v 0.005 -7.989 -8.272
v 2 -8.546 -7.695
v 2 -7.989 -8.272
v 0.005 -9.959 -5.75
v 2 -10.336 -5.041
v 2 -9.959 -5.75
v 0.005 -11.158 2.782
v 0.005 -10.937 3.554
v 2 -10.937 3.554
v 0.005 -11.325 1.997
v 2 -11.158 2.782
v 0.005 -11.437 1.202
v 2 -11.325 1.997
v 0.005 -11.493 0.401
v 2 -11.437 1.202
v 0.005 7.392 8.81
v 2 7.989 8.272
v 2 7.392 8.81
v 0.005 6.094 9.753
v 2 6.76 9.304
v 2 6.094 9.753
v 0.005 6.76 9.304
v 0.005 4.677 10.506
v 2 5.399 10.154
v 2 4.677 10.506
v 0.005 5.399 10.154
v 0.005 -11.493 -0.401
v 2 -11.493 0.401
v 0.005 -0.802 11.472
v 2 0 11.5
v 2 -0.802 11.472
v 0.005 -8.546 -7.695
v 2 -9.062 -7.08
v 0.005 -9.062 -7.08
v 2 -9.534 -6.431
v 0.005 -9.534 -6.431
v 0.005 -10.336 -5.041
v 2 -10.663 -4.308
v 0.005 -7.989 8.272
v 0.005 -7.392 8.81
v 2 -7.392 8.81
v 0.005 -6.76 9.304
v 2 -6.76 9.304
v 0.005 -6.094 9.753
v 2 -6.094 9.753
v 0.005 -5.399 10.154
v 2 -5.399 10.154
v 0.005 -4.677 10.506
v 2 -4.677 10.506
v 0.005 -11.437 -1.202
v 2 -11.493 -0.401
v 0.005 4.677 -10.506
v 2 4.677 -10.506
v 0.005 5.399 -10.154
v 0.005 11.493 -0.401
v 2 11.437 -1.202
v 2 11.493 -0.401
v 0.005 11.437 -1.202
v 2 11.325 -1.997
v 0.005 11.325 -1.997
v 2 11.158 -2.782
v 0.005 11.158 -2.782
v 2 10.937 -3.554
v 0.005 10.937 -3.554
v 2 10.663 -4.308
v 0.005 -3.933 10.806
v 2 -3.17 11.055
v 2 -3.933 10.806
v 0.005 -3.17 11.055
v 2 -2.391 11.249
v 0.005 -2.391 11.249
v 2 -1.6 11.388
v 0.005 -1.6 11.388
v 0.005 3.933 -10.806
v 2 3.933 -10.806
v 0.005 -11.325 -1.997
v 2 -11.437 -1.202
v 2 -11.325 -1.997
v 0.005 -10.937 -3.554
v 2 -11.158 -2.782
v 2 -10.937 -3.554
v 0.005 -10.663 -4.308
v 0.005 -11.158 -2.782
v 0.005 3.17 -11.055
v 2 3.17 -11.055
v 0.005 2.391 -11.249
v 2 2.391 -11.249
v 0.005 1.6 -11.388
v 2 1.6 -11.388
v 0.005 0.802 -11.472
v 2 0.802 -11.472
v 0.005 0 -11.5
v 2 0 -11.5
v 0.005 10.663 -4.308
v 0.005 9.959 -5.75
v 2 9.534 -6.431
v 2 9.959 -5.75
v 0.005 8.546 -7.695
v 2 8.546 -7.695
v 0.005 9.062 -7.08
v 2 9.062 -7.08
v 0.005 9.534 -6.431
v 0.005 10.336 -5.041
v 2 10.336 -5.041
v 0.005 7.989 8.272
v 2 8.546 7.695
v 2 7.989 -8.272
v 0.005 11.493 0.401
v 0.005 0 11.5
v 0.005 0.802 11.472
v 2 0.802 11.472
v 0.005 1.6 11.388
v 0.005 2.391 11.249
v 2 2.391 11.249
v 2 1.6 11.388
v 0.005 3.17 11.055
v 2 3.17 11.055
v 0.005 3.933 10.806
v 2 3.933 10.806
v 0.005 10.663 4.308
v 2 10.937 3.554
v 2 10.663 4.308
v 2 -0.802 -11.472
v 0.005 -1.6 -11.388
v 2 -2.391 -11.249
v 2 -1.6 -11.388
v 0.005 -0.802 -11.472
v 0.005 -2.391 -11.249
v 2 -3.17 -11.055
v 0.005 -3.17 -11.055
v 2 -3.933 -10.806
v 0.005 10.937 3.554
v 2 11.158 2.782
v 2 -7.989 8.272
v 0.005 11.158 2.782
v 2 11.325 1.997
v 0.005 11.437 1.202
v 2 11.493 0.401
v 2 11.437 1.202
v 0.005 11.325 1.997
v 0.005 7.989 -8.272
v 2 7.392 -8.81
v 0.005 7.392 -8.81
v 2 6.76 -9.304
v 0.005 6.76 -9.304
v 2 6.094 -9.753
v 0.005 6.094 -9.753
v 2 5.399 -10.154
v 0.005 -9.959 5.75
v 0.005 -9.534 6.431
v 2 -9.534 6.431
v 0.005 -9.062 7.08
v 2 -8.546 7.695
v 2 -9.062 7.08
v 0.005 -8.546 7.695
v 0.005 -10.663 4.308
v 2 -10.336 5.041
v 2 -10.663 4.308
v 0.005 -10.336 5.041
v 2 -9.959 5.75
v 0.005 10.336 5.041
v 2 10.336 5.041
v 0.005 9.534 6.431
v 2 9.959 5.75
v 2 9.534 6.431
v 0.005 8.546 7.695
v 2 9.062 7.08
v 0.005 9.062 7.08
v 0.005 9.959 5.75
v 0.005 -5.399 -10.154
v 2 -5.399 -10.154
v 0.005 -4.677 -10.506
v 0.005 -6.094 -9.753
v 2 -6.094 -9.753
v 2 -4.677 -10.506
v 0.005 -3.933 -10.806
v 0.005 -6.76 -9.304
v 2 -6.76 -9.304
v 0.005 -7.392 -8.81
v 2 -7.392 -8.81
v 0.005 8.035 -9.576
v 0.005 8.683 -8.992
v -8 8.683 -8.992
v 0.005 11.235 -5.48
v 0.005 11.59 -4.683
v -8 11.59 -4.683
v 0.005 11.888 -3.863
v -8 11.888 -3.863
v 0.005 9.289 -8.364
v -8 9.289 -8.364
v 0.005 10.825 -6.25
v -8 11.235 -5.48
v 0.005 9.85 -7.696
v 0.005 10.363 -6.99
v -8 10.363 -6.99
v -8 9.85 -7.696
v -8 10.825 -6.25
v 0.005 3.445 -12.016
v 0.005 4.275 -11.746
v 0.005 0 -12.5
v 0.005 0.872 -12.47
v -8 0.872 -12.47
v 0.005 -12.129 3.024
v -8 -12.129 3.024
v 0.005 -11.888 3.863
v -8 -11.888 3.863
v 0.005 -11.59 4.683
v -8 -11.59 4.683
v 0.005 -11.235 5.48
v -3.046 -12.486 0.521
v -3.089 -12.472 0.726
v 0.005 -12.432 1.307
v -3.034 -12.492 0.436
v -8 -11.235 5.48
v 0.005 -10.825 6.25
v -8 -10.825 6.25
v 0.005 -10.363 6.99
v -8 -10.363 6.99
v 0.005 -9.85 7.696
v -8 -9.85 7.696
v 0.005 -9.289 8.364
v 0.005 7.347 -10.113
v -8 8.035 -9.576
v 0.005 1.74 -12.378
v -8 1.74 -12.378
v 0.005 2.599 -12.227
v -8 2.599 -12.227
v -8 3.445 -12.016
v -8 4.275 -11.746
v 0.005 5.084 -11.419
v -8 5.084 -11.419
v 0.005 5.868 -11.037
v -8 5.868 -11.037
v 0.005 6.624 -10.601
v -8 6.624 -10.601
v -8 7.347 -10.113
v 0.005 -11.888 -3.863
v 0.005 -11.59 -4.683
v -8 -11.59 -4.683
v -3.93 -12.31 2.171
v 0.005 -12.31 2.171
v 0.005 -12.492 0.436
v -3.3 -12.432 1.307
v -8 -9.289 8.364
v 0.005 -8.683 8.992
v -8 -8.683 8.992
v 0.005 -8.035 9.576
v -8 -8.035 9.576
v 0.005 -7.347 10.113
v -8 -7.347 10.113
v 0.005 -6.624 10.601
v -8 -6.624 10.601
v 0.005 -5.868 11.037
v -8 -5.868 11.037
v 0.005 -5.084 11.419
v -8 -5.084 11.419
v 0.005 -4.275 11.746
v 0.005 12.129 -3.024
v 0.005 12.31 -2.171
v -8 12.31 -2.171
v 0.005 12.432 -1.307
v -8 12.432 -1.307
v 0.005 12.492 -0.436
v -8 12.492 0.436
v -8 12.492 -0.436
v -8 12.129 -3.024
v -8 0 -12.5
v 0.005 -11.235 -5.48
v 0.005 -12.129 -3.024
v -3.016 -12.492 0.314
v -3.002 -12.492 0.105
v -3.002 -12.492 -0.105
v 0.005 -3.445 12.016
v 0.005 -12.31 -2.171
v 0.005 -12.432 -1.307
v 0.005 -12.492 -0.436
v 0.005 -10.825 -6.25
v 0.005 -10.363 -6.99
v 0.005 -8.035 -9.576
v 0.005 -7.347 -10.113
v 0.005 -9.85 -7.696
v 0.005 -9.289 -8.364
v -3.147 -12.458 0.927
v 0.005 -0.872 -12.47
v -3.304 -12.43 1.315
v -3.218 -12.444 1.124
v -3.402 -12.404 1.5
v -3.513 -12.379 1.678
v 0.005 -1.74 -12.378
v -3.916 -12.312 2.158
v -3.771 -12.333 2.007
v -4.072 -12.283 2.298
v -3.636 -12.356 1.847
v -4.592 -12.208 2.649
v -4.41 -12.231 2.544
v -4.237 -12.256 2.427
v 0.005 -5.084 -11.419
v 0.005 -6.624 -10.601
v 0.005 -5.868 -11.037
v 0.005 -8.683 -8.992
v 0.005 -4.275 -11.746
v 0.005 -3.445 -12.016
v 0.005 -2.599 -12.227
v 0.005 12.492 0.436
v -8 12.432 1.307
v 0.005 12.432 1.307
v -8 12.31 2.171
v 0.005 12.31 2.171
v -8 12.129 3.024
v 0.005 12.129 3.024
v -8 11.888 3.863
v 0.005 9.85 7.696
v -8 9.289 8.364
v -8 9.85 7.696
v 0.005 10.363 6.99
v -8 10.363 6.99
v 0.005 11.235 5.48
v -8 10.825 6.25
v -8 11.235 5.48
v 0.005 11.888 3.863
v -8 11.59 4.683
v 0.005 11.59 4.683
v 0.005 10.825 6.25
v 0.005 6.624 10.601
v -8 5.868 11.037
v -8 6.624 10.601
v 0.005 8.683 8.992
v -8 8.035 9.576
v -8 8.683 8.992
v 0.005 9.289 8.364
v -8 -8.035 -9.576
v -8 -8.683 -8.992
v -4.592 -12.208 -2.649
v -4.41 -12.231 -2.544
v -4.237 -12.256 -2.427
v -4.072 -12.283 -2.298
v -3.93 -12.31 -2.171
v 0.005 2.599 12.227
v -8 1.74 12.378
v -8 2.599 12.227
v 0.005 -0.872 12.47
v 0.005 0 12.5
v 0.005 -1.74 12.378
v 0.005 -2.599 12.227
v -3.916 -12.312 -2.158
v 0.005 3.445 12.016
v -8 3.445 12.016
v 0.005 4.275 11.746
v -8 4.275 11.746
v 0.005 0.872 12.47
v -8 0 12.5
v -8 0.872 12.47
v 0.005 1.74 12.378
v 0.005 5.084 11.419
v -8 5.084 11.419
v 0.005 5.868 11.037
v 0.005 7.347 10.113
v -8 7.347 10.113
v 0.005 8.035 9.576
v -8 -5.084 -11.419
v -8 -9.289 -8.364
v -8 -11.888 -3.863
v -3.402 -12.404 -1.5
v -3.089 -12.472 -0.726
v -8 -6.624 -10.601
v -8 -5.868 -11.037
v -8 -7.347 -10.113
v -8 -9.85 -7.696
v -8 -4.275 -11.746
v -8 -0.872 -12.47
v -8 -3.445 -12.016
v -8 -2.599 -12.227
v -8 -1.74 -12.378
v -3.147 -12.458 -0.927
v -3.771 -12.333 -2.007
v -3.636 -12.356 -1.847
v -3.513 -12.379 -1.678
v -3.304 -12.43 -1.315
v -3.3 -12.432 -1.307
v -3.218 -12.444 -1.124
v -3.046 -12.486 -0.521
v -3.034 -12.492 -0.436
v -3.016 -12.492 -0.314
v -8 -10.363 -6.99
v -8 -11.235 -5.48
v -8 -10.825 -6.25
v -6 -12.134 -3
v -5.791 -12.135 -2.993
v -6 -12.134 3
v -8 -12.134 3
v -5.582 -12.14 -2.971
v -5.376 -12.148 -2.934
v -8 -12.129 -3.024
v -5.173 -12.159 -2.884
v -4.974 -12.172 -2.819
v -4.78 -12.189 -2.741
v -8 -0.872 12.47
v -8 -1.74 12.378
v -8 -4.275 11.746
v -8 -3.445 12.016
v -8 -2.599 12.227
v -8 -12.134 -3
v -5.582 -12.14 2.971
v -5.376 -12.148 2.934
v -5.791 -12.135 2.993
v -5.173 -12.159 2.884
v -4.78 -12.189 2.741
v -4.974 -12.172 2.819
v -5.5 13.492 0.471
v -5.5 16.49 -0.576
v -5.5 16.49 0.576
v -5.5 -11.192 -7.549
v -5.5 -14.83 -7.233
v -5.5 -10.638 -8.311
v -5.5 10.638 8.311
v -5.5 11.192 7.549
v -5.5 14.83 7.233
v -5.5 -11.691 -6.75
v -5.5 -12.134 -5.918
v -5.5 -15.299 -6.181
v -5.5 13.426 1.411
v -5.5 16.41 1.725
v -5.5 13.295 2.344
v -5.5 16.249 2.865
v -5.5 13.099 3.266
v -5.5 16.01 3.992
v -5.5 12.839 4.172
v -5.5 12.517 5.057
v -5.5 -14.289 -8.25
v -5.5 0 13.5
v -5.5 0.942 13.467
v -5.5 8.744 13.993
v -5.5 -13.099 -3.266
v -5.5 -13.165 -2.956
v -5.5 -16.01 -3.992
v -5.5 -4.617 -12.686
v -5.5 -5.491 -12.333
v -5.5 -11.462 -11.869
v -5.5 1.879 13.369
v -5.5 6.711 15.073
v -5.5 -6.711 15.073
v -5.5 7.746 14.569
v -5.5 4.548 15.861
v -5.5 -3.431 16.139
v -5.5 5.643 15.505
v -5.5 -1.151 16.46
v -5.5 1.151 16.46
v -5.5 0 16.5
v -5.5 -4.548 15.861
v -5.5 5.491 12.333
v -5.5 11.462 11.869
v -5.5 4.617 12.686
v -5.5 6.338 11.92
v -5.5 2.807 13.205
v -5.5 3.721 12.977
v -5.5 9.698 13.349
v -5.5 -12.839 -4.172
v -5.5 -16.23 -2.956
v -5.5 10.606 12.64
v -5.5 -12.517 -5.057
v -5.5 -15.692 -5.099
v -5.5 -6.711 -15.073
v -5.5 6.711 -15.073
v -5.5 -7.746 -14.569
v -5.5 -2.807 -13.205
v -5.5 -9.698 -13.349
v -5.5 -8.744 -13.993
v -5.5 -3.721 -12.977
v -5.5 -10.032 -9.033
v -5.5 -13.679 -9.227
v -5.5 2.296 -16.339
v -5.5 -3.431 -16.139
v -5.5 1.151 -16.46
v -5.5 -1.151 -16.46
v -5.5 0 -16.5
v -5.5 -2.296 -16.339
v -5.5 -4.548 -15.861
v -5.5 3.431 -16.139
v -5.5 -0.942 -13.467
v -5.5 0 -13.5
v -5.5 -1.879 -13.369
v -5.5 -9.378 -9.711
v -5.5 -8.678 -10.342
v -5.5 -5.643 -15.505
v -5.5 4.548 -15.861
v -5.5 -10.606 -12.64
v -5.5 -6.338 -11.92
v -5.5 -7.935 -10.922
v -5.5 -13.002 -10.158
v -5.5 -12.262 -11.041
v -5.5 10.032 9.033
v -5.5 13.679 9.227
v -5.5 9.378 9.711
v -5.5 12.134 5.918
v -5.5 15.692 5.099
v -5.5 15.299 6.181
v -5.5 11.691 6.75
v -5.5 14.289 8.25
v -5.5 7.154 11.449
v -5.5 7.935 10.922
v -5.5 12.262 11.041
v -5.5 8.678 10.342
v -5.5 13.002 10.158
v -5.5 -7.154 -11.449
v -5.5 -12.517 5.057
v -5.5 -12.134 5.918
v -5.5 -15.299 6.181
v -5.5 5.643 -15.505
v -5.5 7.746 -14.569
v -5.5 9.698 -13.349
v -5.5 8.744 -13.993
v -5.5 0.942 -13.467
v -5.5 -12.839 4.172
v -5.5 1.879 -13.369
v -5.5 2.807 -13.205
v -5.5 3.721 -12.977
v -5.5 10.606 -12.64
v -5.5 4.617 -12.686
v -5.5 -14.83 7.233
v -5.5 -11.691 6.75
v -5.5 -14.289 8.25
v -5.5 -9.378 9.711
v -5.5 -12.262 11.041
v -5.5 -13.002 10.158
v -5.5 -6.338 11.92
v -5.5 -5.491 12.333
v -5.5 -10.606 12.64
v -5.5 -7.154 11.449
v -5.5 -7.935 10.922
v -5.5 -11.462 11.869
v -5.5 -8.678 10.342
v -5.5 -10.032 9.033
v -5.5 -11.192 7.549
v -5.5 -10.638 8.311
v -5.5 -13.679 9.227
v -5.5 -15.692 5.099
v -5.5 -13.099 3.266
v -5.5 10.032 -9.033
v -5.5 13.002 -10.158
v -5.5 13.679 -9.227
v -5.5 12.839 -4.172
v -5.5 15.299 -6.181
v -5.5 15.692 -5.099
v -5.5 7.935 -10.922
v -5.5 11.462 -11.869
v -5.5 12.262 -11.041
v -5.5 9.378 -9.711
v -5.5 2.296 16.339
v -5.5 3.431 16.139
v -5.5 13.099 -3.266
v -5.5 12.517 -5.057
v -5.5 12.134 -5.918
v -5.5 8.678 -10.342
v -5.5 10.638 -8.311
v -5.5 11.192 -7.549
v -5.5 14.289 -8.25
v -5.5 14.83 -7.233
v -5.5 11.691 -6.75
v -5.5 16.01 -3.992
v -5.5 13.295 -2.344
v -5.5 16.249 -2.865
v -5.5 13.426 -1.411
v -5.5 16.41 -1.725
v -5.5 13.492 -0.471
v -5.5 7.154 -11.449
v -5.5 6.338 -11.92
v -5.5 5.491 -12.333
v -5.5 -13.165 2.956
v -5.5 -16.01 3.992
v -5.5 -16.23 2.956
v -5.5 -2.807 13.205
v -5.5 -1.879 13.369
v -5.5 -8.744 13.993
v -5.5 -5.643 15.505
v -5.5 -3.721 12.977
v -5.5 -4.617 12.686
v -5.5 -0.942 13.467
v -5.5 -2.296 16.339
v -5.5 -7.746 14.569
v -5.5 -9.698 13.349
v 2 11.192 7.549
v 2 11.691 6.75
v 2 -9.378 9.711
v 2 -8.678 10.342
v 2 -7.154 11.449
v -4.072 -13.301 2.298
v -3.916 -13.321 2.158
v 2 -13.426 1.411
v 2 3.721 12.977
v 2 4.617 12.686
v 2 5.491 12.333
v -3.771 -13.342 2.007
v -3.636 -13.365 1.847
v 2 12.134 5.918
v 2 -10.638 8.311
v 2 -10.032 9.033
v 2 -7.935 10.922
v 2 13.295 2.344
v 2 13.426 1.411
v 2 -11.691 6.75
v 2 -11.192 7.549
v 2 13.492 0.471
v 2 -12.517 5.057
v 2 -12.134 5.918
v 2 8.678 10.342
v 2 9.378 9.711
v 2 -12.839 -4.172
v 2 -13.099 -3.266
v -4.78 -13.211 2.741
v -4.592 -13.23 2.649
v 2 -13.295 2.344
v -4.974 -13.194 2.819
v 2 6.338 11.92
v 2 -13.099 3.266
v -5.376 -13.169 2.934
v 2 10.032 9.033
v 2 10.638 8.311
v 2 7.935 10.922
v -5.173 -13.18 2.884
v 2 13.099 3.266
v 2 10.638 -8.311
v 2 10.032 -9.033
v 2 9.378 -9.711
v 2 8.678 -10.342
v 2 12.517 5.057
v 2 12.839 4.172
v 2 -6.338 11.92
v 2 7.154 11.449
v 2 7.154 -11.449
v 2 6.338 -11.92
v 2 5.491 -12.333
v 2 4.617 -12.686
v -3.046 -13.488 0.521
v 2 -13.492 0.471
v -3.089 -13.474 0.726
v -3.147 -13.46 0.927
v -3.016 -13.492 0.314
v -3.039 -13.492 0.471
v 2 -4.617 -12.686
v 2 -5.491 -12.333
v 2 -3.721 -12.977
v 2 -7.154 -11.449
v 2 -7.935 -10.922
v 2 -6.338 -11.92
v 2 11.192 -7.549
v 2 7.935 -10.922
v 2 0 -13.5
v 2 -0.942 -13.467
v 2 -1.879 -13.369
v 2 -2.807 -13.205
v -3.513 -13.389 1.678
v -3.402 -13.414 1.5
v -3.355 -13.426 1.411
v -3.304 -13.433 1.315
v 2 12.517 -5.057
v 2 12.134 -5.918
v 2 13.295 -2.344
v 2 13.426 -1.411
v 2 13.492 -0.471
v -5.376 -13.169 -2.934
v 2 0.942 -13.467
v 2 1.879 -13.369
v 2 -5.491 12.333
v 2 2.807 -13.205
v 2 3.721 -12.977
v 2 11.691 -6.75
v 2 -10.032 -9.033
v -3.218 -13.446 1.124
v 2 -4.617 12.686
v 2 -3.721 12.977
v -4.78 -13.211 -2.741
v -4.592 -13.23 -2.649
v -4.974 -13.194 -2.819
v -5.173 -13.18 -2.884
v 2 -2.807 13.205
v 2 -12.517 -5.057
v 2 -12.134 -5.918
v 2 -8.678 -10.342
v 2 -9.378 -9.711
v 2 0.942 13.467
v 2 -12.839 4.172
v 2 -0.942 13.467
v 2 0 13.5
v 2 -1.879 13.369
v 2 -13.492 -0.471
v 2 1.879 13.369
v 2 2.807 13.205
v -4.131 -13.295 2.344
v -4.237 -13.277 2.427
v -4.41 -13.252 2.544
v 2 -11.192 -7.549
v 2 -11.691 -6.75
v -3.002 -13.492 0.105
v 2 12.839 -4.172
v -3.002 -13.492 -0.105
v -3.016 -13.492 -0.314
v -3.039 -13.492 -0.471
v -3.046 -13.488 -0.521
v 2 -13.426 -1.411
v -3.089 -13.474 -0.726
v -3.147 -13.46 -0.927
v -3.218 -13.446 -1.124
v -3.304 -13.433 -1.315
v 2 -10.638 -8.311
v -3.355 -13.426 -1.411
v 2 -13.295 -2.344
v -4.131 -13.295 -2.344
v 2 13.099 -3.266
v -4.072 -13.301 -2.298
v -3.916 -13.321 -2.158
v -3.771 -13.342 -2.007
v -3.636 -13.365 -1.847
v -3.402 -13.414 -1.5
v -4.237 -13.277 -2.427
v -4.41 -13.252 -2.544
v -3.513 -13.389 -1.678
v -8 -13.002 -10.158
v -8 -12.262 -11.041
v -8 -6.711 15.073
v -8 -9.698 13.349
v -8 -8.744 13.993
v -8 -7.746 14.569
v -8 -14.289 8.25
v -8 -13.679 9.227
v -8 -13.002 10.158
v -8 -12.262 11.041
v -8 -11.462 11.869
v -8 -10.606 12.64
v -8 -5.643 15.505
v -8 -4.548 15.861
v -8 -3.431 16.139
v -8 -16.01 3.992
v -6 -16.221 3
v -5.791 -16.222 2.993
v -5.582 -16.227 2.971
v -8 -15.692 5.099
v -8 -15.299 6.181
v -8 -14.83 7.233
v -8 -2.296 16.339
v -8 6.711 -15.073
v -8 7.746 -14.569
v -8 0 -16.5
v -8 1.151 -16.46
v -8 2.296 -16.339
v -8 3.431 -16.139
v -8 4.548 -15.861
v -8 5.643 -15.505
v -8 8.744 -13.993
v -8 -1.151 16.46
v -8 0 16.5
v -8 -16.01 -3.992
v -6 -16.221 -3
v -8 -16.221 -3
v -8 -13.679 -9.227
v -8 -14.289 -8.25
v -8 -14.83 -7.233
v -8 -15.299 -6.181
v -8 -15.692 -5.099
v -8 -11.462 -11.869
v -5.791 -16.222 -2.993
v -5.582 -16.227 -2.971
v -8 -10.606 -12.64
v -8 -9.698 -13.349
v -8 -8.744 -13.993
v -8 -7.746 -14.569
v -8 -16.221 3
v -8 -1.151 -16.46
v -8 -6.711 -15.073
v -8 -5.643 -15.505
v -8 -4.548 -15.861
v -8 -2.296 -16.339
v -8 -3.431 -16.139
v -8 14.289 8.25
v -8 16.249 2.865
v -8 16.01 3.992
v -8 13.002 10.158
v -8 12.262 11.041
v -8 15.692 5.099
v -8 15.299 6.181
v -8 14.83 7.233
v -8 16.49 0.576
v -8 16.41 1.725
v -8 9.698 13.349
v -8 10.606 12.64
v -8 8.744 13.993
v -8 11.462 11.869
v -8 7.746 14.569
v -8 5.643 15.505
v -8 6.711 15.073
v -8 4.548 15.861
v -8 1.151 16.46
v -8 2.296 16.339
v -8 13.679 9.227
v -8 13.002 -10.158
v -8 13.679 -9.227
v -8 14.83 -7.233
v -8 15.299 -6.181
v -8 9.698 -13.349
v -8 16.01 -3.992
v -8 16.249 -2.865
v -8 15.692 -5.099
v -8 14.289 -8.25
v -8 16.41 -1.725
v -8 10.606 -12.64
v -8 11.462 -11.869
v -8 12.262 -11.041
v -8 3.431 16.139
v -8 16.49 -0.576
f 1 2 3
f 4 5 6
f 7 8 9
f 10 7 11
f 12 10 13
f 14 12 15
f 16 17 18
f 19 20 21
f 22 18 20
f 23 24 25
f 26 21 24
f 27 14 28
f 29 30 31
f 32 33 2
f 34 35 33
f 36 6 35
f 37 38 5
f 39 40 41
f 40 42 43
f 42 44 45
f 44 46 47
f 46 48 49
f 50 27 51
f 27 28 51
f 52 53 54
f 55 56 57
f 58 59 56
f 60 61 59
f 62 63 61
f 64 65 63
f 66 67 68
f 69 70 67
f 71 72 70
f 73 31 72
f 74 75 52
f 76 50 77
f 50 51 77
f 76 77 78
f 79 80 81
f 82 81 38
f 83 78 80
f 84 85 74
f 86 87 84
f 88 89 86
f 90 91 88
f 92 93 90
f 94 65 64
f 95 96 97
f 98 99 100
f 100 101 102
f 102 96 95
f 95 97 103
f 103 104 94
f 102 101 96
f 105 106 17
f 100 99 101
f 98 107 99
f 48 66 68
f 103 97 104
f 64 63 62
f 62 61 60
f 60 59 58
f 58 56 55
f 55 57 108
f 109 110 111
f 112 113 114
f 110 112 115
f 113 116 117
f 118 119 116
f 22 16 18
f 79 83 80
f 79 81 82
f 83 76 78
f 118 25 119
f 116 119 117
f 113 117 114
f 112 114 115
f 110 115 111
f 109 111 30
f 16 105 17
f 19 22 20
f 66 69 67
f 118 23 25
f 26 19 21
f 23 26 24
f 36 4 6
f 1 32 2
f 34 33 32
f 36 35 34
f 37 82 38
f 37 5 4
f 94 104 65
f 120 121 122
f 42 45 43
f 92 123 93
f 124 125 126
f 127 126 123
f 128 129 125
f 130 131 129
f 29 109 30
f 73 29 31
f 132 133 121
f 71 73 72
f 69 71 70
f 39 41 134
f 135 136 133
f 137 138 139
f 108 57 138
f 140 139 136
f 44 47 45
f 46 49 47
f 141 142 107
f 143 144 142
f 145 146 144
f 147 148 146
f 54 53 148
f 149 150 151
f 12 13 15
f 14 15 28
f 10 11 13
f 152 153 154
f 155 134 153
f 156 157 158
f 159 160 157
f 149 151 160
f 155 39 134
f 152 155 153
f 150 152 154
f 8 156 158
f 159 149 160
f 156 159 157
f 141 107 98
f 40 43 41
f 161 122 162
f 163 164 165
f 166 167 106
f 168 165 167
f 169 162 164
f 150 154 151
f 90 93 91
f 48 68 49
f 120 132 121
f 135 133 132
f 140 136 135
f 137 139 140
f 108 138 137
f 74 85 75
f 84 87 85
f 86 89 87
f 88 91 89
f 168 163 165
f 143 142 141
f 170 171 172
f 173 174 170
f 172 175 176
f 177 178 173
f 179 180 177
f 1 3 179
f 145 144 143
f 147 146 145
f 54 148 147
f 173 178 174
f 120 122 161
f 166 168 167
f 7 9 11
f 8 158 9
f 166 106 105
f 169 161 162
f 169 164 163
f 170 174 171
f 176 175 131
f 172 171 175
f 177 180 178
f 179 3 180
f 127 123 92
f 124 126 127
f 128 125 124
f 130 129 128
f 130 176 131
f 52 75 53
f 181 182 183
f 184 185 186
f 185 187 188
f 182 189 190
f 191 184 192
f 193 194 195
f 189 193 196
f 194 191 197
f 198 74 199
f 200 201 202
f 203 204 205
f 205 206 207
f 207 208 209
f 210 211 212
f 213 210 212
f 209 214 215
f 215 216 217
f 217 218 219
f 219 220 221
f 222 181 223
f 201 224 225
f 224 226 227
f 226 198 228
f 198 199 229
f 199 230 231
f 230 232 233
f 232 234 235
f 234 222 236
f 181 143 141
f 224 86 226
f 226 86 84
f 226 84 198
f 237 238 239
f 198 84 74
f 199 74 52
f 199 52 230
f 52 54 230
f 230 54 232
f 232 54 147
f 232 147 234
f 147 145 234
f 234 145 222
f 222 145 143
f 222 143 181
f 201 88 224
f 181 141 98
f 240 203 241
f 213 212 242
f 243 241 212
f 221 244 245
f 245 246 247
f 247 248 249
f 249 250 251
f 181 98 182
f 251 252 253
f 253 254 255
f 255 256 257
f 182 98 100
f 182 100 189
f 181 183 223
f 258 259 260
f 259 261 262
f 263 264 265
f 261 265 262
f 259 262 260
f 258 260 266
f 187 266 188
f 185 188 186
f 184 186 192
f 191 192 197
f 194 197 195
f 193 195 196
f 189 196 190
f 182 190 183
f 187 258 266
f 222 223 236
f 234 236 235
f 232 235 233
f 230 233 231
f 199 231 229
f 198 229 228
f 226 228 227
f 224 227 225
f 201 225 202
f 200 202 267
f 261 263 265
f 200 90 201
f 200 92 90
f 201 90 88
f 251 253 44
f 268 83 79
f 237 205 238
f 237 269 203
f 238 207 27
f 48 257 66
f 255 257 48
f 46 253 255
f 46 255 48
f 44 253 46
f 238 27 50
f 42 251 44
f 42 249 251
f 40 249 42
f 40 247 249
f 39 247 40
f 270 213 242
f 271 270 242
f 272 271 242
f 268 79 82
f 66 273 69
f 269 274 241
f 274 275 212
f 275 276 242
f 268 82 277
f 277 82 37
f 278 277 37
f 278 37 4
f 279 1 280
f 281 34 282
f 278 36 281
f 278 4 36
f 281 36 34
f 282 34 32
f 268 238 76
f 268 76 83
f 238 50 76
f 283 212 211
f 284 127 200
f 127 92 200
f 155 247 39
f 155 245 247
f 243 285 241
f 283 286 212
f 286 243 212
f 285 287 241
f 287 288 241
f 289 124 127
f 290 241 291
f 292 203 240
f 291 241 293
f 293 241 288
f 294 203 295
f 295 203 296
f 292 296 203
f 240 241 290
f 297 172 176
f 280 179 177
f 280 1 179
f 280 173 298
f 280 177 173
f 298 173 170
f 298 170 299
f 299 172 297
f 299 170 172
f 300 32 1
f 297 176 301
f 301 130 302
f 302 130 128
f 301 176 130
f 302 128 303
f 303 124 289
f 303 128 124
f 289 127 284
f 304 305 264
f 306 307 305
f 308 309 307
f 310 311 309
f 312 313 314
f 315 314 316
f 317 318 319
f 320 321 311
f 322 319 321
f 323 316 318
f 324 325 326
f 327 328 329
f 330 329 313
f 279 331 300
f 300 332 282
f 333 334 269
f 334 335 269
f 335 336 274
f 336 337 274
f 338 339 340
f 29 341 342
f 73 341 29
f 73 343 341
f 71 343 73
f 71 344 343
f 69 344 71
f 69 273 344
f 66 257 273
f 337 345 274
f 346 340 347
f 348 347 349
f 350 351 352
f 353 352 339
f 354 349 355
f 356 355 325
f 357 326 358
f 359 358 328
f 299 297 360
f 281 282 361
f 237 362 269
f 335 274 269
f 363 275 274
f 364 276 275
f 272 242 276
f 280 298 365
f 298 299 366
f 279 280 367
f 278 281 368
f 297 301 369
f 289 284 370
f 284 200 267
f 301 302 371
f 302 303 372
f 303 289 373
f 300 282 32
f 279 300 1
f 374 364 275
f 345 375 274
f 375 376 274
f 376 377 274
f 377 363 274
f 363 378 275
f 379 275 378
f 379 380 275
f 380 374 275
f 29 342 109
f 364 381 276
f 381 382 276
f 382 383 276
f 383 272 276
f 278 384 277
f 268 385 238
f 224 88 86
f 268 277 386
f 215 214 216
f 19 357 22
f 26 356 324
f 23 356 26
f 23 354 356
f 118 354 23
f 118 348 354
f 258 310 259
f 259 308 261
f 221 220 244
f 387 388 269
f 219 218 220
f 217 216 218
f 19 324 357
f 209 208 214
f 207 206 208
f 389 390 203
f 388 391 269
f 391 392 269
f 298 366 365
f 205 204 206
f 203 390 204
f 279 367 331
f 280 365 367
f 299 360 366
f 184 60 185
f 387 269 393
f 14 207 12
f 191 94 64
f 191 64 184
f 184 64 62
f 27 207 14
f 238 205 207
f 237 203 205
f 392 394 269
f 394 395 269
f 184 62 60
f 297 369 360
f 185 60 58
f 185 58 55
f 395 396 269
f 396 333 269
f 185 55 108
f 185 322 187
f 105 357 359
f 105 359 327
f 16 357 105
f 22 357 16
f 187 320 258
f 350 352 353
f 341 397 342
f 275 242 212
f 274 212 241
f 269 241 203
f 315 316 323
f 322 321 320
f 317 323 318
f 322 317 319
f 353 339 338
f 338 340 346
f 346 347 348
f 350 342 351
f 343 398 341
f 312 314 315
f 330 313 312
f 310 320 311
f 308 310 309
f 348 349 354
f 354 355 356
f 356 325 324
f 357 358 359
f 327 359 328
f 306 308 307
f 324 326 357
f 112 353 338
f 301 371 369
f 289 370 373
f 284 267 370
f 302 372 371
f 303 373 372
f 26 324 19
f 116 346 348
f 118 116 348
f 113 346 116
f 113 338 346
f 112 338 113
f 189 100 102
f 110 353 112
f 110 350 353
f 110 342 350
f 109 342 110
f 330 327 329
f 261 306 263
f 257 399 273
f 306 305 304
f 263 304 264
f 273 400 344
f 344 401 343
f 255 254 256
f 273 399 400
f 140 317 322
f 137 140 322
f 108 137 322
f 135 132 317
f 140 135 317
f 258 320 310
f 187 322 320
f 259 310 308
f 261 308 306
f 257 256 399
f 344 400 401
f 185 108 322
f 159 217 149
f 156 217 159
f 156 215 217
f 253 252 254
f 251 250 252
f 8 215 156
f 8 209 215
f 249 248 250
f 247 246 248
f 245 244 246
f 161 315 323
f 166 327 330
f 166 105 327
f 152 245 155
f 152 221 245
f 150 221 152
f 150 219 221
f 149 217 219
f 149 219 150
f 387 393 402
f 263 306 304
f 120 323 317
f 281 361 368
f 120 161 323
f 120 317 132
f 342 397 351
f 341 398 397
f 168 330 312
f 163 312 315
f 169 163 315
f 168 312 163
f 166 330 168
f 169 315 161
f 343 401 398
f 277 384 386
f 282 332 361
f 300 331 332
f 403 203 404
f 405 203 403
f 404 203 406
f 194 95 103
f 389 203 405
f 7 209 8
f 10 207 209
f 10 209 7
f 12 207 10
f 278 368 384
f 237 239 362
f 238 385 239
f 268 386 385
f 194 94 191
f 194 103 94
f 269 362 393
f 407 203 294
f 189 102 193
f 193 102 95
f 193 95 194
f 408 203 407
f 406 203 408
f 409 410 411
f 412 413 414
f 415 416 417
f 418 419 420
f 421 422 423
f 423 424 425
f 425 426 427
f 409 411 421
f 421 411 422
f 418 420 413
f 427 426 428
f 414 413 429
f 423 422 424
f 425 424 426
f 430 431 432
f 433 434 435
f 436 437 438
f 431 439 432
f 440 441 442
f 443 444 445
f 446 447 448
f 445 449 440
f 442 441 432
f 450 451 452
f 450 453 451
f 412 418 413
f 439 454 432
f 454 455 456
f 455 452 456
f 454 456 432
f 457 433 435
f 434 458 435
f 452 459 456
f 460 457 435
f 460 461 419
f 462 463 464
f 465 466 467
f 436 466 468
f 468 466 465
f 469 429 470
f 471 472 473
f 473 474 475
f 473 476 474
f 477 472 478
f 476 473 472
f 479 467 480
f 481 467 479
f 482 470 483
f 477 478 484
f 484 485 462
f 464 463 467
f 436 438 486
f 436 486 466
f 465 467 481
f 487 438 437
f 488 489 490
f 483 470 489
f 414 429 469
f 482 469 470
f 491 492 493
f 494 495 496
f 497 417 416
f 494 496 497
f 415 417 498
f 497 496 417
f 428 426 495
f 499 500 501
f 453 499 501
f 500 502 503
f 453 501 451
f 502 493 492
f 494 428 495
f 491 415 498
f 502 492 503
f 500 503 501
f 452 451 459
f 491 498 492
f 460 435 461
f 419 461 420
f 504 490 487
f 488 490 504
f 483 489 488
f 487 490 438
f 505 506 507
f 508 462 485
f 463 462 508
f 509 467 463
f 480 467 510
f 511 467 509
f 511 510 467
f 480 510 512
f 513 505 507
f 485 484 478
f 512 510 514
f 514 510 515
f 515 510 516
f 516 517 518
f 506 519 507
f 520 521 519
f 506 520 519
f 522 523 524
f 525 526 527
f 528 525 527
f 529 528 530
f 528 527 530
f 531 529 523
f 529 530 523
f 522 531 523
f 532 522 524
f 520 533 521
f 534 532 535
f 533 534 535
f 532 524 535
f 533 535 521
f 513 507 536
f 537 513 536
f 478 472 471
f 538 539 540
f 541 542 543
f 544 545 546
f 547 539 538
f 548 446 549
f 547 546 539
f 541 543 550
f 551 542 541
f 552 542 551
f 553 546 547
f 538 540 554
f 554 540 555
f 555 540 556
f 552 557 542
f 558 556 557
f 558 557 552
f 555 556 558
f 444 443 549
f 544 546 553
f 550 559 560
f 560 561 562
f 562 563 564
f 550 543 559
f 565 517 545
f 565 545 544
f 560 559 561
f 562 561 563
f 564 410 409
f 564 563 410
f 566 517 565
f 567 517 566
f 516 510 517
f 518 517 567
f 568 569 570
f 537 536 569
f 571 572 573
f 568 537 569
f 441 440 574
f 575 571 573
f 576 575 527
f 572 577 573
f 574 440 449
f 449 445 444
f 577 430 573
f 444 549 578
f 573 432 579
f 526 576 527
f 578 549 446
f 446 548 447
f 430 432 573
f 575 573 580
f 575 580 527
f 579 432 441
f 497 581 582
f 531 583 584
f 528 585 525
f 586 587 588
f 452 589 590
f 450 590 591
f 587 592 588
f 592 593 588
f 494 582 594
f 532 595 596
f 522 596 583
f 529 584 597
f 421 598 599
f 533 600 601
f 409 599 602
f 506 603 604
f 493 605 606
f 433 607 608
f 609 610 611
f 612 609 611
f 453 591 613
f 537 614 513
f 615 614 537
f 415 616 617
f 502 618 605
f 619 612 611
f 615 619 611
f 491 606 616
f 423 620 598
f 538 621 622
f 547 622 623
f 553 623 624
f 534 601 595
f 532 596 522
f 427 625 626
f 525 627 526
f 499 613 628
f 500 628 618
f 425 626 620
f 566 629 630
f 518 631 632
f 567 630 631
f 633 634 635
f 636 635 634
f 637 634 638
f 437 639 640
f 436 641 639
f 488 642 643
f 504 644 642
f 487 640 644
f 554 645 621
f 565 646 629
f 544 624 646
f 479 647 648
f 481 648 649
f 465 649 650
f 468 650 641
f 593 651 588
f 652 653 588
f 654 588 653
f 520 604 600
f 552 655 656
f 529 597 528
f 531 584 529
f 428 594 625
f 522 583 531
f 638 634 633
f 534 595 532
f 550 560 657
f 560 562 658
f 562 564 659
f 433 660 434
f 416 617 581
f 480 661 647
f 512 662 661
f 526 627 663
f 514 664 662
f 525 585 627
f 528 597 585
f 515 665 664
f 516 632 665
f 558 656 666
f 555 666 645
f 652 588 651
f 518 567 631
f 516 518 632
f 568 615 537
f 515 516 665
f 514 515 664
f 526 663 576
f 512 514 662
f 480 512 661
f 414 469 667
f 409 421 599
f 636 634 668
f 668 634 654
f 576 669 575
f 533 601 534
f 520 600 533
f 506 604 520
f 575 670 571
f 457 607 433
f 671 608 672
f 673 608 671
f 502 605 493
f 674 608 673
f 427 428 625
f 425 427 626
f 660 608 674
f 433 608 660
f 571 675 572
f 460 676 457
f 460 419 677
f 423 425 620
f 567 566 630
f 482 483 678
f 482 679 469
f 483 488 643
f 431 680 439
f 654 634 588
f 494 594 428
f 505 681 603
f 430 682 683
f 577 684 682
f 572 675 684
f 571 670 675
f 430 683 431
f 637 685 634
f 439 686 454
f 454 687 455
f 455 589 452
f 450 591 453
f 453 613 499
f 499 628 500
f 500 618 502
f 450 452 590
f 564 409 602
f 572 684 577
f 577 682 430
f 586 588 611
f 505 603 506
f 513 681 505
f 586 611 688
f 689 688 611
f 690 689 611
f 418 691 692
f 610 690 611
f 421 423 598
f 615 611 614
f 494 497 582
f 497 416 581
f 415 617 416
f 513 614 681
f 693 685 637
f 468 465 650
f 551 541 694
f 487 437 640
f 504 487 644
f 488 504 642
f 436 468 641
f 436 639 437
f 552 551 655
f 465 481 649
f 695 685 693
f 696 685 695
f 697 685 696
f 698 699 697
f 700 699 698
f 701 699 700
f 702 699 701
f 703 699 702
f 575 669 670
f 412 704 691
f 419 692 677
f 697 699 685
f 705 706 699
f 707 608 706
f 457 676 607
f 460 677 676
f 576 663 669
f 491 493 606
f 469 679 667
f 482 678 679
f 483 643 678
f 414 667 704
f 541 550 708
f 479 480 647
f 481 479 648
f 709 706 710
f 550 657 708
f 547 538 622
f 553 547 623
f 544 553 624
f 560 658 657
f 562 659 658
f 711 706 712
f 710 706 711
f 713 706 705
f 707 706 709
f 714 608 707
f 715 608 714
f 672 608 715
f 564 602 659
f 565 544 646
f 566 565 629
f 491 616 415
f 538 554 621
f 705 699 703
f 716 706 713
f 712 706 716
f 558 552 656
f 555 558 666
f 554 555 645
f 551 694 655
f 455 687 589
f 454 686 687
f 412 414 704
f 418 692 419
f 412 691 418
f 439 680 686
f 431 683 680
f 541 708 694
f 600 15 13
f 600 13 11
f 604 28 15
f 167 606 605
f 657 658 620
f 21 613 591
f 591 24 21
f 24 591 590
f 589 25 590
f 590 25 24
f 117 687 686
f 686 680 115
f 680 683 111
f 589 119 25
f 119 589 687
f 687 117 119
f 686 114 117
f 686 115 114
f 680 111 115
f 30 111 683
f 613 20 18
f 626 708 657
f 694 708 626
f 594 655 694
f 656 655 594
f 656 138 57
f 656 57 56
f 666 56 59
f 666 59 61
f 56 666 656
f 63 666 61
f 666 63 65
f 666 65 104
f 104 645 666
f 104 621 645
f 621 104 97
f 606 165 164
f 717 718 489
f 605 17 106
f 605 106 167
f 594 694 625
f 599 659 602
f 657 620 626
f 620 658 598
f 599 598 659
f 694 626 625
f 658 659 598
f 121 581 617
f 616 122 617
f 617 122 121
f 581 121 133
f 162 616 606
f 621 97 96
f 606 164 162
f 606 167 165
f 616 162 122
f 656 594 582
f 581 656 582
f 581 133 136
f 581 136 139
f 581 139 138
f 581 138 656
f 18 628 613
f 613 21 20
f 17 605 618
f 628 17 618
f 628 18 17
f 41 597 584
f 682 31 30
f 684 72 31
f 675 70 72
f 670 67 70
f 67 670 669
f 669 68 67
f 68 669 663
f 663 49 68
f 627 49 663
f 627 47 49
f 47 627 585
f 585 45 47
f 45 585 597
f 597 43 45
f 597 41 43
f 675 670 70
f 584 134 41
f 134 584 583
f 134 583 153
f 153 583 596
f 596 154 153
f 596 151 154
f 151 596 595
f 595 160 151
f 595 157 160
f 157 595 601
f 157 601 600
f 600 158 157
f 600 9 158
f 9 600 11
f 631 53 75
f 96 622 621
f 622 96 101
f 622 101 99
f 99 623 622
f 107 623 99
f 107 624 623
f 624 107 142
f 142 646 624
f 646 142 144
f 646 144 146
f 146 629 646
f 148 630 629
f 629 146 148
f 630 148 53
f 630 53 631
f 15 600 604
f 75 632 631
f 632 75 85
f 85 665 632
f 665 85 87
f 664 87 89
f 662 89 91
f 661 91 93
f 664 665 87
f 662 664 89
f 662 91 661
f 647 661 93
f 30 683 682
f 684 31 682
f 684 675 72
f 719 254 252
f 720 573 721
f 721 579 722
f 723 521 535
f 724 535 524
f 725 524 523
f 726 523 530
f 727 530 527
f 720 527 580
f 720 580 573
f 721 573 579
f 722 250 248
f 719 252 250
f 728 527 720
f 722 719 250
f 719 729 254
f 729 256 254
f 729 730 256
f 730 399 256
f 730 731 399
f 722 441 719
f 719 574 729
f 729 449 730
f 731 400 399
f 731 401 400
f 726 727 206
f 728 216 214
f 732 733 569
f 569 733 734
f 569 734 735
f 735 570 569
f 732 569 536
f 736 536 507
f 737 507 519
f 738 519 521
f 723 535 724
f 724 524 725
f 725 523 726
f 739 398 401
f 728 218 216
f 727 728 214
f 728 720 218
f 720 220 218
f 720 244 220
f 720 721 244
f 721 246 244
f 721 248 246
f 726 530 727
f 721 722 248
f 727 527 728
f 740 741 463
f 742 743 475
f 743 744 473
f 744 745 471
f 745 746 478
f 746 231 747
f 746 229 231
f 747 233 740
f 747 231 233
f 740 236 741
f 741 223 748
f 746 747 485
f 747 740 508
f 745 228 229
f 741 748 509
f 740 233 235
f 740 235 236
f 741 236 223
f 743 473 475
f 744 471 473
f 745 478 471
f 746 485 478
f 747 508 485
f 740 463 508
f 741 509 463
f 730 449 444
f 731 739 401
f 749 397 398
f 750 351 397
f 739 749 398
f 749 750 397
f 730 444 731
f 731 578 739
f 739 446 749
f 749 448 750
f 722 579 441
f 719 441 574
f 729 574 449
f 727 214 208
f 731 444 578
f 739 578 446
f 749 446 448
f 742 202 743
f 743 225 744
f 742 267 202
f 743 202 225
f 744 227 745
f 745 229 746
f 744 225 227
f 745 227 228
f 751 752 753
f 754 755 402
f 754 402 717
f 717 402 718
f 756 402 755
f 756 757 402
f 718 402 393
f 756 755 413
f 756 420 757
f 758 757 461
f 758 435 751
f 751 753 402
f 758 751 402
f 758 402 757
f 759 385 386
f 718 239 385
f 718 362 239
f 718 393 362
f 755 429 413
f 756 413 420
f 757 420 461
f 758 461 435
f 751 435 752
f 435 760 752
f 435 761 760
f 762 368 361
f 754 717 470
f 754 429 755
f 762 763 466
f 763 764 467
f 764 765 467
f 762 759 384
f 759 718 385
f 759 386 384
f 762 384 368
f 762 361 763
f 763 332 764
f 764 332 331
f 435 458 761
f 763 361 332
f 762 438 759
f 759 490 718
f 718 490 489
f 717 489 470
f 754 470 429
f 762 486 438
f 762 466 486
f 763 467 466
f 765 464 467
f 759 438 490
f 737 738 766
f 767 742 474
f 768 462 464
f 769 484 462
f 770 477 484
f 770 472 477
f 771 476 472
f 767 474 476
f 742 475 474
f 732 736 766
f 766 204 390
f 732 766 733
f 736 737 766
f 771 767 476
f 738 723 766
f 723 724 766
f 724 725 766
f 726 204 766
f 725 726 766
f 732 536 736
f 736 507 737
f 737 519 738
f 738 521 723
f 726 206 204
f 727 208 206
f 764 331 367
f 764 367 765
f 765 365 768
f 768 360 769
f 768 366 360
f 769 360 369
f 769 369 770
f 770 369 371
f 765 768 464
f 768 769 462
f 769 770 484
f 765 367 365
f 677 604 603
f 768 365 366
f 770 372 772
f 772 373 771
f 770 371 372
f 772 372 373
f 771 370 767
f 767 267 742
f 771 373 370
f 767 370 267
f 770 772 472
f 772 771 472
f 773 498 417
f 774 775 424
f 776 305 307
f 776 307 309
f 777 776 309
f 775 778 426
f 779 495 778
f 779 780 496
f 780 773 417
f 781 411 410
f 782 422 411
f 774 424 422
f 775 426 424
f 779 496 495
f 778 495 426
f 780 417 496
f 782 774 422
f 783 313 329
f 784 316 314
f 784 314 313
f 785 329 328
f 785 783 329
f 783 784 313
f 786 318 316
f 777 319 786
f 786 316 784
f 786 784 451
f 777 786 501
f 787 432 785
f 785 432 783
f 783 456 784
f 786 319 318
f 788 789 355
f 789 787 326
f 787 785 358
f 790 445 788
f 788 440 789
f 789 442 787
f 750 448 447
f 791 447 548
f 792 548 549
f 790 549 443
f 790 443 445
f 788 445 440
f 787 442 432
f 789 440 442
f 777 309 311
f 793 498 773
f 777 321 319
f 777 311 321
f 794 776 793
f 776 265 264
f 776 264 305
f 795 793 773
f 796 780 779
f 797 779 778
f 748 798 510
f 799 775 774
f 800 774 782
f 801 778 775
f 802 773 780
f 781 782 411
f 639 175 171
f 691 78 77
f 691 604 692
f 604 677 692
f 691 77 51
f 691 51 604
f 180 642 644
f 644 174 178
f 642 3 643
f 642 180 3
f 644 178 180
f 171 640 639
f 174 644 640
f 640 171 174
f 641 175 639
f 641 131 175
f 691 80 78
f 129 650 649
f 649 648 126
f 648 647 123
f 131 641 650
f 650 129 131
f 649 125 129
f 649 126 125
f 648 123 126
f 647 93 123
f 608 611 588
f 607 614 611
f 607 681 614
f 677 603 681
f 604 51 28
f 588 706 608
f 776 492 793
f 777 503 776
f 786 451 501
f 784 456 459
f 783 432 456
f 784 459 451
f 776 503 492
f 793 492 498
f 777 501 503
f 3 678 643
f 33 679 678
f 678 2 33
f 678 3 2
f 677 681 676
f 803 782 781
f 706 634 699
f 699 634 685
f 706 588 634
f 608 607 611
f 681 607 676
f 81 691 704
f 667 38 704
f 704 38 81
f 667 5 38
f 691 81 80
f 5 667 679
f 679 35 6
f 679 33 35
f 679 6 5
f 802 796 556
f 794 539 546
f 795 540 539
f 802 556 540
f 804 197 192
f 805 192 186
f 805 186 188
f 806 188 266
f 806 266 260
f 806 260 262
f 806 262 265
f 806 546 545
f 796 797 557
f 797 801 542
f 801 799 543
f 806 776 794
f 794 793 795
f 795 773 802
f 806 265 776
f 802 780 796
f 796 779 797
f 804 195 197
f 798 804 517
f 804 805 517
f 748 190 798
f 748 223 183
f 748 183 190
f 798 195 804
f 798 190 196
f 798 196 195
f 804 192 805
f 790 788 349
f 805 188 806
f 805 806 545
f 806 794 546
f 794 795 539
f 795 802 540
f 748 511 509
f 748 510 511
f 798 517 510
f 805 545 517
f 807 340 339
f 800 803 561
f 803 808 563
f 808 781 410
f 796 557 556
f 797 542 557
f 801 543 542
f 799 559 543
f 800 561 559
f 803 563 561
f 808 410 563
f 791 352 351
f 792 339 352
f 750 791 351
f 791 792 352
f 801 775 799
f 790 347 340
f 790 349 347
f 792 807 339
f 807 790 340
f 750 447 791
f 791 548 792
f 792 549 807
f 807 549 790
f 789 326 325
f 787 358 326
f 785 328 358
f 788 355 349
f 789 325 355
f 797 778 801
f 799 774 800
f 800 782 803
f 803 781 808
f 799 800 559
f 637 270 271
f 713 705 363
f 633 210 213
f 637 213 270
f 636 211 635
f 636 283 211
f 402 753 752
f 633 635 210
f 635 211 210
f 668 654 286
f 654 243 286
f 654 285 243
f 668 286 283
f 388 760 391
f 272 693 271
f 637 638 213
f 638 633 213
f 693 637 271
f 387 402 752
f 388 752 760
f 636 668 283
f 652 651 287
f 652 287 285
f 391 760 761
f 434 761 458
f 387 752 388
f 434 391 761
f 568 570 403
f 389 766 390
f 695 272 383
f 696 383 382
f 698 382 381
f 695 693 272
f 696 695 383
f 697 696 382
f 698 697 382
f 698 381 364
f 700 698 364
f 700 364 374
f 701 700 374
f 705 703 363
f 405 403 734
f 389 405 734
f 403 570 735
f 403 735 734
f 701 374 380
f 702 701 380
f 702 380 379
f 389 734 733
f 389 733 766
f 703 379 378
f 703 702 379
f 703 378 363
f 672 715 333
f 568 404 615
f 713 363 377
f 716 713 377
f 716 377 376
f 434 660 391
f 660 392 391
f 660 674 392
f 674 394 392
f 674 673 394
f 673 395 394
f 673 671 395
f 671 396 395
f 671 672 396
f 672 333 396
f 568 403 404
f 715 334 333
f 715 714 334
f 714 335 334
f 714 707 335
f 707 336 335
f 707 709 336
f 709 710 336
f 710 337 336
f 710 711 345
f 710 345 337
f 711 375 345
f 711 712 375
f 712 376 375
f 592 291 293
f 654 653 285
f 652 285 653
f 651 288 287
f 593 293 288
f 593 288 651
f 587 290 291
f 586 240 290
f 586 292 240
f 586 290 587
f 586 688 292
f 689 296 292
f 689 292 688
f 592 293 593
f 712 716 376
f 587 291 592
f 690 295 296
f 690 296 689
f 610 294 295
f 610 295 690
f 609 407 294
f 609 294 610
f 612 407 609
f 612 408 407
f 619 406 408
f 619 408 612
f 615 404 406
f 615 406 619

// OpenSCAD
$fn=90;
fudge = 0.01;

module handle(){
    translate([10,0,0])rotate([0,90,0])cylinder(h=20+fudge,d=23, center=true);
    translate([-10,0,0])rotate([0,90,0])cylinder(h=20+fudge,d=25, center=true);
}

module bracket(){
    translate([-5+2,0,0])rotate([0,90,0])cylinder(h=10,d=33, center=true);
}

module slot(){
    translate([-5+2+2,0,0]){
        rotate([0,90,0]){
            difference(){
                cylinder(h=9,d=50, center=true);
                cylinder(h=10,d=27, center=true);
            }
        }
    }
}

module cutout(){
    translate([-6,-15,0]){
        rotate([90,90,0]){
            hull(){
                translate([0,-3,0])cube([6,1,10], center=true);
                cylinder(h=10,d=6,center=true);
            }
        }
    }
}
difference(){
    bracket();
    handle();
    slot();
    cutout();
}
